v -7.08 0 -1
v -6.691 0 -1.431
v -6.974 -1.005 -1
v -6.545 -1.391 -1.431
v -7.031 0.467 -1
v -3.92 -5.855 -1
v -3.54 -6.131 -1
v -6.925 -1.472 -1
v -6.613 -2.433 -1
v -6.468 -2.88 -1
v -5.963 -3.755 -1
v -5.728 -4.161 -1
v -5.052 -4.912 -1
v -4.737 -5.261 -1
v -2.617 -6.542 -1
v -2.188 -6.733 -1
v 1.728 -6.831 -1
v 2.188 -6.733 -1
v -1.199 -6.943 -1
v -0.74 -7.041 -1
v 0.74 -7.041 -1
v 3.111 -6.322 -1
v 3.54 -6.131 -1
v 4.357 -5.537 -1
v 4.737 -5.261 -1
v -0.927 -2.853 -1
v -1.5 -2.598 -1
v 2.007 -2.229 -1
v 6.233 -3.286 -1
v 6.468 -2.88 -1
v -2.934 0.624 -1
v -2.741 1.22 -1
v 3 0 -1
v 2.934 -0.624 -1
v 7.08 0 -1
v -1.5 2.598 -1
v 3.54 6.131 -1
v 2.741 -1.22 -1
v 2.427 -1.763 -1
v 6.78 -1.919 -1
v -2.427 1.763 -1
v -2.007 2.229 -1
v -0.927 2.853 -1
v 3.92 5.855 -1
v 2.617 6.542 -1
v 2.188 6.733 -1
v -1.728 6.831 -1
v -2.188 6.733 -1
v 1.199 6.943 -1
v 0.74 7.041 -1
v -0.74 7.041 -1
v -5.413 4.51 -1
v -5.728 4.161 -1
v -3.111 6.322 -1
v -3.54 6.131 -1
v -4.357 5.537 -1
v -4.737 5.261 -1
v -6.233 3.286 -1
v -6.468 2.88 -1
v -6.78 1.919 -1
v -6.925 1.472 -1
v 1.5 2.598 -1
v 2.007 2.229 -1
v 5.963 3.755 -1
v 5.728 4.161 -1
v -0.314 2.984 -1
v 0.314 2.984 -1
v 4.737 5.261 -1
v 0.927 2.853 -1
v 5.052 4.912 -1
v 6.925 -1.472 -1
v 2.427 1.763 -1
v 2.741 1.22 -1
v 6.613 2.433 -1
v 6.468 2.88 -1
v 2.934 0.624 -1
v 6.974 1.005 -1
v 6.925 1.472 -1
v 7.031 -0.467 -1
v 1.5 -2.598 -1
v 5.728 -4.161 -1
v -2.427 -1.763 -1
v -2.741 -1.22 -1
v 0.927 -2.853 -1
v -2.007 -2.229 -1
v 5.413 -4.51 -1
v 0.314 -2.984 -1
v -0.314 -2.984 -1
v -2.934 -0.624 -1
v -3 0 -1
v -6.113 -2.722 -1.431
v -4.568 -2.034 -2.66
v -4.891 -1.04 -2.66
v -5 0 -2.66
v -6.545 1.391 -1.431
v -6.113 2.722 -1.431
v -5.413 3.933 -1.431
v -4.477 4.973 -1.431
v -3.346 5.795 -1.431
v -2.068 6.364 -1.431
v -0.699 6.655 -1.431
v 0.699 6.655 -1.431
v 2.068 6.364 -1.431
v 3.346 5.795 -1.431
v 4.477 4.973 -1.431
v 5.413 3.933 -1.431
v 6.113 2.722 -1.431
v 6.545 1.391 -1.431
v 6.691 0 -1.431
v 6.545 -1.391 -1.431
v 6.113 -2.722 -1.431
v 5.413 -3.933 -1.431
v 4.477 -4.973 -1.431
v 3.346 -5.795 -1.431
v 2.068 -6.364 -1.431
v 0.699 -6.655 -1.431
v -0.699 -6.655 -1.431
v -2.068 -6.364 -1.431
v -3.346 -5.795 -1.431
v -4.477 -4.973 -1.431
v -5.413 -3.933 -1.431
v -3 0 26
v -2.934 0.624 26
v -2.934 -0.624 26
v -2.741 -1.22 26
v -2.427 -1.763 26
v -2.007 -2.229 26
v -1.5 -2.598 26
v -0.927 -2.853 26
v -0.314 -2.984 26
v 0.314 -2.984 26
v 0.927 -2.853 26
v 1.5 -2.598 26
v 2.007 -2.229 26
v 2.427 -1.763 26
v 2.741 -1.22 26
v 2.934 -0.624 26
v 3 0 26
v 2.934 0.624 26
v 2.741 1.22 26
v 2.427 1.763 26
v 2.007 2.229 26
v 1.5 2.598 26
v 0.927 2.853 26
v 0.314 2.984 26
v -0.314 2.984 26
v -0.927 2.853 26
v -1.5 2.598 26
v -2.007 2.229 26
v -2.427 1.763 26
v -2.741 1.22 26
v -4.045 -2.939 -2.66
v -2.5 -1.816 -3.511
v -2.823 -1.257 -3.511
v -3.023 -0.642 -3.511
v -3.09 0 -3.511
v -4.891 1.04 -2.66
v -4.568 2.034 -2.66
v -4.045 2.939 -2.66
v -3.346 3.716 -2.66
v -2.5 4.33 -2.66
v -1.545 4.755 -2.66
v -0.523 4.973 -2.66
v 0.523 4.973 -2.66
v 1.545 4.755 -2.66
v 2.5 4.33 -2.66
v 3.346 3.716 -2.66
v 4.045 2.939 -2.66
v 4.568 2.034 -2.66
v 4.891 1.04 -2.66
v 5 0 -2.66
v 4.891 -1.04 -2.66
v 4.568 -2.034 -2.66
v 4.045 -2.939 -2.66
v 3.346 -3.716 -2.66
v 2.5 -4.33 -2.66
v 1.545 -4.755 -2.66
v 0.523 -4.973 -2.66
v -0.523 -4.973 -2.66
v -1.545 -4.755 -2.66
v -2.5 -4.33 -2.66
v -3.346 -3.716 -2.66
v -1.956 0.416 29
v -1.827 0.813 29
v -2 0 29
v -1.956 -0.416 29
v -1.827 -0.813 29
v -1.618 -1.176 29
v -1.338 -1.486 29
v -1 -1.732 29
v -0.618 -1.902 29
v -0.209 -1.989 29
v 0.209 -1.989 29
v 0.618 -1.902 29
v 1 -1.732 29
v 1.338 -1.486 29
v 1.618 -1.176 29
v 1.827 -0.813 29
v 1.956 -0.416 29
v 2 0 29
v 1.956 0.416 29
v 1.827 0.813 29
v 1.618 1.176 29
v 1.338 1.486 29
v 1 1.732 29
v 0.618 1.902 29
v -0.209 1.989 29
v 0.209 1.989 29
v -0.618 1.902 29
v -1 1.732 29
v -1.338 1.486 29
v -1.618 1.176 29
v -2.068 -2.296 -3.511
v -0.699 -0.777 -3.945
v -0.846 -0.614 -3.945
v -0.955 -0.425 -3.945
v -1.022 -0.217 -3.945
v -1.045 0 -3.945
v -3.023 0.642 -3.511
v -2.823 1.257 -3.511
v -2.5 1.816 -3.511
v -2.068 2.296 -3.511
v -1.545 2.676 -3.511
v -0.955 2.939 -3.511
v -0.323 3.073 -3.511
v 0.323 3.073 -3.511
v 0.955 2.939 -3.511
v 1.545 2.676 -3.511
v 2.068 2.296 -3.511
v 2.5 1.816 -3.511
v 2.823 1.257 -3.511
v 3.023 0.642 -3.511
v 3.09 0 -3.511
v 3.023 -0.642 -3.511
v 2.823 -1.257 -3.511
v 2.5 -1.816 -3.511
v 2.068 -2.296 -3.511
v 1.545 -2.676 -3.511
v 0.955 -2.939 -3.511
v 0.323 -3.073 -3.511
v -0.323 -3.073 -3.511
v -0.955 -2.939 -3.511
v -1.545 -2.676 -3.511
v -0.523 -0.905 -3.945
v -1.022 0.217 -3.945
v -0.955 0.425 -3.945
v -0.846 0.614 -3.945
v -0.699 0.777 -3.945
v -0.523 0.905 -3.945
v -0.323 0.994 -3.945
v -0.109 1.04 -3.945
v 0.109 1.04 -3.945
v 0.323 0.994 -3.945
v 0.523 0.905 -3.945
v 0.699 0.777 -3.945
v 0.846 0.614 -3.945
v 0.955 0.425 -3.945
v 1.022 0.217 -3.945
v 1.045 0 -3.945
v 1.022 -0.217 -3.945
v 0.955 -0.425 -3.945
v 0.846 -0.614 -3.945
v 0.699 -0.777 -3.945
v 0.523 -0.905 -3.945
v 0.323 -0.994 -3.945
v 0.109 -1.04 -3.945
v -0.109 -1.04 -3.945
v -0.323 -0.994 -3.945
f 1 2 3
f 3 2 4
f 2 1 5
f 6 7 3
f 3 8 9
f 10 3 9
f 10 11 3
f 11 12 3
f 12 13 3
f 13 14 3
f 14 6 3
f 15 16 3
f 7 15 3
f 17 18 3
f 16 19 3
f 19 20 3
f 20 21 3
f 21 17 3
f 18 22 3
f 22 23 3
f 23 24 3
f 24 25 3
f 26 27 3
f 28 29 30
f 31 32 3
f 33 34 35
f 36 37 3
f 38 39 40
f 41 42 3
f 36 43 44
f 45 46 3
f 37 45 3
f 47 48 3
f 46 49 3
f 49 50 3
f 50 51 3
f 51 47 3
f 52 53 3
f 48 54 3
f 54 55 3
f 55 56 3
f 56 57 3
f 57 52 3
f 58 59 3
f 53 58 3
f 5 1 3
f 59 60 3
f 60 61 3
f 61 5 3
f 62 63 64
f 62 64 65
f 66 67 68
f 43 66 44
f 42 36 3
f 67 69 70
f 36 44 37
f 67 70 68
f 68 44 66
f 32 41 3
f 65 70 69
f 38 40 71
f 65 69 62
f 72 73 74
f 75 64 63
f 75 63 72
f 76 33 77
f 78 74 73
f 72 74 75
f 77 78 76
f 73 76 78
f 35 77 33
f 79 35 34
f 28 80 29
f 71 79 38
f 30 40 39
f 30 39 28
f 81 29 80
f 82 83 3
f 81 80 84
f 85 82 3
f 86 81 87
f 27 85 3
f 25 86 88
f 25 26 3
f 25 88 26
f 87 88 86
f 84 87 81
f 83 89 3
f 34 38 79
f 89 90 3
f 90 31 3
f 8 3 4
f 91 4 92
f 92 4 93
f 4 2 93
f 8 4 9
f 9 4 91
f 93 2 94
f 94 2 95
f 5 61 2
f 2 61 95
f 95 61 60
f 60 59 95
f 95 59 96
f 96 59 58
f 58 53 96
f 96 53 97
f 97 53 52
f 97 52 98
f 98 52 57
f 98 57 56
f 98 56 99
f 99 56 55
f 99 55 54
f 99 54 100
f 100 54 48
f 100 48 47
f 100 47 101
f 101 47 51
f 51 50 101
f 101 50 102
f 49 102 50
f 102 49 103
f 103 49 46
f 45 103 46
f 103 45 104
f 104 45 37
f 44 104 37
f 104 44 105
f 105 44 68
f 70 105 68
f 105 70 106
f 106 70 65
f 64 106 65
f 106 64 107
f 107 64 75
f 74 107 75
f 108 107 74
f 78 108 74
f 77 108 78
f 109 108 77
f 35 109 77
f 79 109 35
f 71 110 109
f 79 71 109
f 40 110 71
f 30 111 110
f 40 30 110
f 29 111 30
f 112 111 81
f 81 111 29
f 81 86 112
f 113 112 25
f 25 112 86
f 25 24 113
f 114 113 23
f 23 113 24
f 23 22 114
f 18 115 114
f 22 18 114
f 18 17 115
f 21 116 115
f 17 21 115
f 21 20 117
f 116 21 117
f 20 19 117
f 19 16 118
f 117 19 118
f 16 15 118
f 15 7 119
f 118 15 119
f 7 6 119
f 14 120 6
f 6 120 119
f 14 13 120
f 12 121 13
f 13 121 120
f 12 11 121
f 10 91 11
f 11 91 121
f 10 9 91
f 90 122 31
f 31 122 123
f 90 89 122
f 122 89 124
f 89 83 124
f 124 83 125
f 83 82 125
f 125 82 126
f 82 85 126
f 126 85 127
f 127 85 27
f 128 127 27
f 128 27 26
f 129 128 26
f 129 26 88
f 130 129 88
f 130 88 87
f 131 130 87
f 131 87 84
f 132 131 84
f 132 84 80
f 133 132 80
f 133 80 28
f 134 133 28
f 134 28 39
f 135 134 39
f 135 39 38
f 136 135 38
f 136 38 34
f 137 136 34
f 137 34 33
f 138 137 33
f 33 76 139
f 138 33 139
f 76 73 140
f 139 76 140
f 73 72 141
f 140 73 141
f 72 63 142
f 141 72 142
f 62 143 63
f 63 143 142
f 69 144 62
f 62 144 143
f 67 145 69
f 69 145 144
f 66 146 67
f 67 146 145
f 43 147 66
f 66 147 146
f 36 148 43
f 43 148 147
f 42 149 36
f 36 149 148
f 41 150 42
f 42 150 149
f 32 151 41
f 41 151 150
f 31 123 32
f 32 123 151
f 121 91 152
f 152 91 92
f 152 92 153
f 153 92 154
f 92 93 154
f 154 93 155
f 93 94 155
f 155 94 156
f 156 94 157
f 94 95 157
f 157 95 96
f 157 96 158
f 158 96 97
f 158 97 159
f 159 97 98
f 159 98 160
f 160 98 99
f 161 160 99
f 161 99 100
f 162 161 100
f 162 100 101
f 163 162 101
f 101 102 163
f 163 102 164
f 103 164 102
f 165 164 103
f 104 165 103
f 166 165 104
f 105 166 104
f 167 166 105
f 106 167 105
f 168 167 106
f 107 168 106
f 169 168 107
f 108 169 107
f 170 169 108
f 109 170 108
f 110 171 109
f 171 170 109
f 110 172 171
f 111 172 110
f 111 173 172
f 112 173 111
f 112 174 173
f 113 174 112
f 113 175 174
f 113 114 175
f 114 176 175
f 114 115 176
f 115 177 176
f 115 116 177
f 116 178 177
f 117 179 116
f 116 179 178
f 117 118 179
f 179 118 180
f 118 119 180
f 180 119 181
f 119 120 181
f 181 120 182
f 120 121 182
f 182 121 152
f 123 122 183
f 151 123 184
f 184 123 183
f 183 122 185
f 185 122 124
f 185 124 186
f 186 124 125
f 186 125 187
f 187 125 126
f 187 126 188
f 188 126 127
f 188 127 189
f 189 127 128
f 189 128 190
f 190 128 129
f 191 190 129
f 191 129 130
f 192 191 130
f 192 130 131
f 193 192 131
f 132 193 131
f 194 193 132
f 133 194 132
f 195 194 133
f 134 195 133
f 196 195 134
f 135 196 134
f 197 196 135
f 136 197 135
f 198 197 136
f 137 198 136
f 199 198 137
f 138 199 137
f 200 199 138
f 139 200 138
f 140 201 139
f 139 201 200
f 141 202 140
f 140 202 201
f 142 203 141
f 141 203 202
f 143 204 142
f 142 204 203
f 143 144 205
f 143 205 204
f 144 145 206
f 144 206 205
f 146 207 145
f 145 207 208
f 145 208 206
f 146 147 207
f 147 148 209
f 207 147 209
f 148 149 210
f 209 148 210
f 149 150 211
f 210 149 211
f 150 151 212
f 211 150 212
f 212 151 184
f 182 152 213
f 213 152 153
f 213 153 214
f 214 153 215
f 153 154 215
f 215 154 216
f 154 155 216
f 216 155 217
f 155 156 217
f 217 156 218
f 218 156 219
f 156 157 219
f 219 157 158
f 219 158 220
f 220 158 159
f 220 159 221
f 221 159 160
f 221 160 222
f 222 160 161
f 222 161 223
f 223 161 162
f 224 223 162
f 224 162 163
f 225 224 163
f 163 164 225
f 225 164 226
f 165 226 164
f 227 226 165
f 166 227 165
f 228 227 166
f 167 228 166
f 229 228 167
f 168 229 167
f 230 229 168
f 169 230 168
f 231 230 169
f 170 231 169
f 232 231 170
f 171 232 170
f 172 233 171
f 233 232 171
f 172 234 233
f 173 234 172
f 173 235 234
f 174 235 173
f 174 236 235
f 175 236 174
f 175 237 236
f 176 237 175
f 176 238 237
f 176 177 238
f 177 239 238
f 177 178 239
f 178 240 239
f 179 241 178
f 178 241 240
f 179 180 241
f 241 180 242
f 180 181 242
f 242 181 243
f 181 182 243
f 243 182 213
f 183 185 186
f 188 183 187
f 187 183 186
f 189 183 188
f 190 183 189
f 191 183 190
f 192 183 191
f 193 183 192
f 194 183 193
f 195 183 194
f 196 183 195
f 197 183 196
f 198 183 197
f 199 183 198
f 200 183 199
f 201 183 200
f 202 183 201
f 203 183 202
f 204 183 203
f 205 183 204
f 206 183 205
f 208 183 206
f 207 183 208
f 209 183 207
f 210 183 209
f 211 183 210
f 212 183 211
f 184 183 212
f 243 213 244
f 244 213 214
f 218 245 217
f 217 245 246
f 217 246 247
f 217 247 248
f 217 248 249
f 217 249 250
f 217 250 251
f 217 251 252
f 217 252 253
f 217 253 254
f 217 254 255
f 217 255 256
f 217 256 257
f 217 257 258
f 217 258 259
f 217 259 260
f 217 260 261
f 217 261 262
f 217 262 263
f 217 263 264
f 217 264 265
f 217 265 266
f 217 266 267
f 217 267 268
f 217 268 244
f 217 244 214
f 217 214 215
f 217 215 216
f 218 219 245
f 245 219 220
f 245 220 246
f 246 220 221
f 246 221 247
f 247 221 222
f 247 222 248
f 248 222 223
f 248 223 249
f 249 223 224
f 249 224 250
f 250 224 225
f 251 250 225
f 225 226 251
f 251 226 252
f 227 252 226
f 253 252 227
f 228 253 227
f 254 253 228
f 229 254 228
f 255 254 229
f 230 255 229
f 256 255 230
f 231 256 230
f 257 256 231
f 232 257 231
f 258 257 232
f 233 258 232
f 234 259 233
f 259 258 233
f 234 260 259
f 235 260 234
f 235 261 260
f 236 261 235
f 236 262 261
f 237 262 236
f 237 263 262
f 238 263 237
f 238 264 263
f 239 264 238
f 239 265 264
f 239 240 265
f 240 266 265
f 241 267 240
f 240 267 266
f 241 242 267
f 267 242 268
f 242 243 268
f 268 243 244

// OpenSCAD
$fn=30;

translate([0,0,26]) {
	cylinder(3,3,2);
}

translate([0,0,-2]) {
    cylinder(r=3,h=28);
}

translate( [0,0,6] ) {
	difference() {
  		  sphere( r=10 );
    		translate([0,0,-7]){
      	  cylinder(r=15,h=17); 
    		}
	}
}
